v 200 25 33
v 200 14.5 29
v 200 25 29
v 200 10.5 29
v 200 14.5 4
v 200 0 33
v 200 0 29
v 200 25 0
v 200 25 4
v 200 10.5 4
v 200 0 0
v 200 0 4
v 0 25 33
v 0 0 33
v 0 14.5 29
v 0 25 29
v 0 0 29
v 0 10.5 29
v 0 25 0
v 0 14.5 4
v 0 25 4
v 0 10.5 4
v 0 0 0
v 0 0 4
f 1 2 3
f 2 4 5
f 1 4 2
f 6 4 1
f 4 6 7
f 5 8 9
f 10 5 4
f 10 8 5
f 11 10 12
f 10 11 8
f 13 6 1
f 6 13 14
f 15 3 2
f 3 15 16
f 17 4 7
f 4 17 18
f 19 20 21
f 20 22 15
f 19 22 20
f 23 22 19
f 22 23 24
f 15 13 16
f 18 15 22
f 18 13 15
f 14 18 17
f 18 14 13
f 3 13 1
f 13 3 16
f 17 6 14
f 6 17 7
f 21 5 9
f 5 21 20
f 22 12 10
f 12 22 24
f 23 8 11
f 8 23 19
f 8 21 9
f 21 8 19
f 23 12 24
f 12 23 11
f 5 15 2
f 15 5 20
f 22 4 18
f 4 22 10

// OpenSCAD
t = 4;               // Thickness
length = 200;        // Length of the beam
width = 25;          // Width of the beam
height = 25 + t + t; // Overall height of the beam

flange_height = t;                       // Height of the top and bottom flanges
web_height = height - 2 * flange_height; // Height of the vertical web

// Top flange
translate([ 0, 0, height - flange_height ]) cube([ length, width, flange_height ]);

// Bottom flange
cube([ length, width, flange_height ]);

// Vertical web
translate([ 0, (width - t) / 2, flange_height ]) cube([ length, t, web_height ]);
